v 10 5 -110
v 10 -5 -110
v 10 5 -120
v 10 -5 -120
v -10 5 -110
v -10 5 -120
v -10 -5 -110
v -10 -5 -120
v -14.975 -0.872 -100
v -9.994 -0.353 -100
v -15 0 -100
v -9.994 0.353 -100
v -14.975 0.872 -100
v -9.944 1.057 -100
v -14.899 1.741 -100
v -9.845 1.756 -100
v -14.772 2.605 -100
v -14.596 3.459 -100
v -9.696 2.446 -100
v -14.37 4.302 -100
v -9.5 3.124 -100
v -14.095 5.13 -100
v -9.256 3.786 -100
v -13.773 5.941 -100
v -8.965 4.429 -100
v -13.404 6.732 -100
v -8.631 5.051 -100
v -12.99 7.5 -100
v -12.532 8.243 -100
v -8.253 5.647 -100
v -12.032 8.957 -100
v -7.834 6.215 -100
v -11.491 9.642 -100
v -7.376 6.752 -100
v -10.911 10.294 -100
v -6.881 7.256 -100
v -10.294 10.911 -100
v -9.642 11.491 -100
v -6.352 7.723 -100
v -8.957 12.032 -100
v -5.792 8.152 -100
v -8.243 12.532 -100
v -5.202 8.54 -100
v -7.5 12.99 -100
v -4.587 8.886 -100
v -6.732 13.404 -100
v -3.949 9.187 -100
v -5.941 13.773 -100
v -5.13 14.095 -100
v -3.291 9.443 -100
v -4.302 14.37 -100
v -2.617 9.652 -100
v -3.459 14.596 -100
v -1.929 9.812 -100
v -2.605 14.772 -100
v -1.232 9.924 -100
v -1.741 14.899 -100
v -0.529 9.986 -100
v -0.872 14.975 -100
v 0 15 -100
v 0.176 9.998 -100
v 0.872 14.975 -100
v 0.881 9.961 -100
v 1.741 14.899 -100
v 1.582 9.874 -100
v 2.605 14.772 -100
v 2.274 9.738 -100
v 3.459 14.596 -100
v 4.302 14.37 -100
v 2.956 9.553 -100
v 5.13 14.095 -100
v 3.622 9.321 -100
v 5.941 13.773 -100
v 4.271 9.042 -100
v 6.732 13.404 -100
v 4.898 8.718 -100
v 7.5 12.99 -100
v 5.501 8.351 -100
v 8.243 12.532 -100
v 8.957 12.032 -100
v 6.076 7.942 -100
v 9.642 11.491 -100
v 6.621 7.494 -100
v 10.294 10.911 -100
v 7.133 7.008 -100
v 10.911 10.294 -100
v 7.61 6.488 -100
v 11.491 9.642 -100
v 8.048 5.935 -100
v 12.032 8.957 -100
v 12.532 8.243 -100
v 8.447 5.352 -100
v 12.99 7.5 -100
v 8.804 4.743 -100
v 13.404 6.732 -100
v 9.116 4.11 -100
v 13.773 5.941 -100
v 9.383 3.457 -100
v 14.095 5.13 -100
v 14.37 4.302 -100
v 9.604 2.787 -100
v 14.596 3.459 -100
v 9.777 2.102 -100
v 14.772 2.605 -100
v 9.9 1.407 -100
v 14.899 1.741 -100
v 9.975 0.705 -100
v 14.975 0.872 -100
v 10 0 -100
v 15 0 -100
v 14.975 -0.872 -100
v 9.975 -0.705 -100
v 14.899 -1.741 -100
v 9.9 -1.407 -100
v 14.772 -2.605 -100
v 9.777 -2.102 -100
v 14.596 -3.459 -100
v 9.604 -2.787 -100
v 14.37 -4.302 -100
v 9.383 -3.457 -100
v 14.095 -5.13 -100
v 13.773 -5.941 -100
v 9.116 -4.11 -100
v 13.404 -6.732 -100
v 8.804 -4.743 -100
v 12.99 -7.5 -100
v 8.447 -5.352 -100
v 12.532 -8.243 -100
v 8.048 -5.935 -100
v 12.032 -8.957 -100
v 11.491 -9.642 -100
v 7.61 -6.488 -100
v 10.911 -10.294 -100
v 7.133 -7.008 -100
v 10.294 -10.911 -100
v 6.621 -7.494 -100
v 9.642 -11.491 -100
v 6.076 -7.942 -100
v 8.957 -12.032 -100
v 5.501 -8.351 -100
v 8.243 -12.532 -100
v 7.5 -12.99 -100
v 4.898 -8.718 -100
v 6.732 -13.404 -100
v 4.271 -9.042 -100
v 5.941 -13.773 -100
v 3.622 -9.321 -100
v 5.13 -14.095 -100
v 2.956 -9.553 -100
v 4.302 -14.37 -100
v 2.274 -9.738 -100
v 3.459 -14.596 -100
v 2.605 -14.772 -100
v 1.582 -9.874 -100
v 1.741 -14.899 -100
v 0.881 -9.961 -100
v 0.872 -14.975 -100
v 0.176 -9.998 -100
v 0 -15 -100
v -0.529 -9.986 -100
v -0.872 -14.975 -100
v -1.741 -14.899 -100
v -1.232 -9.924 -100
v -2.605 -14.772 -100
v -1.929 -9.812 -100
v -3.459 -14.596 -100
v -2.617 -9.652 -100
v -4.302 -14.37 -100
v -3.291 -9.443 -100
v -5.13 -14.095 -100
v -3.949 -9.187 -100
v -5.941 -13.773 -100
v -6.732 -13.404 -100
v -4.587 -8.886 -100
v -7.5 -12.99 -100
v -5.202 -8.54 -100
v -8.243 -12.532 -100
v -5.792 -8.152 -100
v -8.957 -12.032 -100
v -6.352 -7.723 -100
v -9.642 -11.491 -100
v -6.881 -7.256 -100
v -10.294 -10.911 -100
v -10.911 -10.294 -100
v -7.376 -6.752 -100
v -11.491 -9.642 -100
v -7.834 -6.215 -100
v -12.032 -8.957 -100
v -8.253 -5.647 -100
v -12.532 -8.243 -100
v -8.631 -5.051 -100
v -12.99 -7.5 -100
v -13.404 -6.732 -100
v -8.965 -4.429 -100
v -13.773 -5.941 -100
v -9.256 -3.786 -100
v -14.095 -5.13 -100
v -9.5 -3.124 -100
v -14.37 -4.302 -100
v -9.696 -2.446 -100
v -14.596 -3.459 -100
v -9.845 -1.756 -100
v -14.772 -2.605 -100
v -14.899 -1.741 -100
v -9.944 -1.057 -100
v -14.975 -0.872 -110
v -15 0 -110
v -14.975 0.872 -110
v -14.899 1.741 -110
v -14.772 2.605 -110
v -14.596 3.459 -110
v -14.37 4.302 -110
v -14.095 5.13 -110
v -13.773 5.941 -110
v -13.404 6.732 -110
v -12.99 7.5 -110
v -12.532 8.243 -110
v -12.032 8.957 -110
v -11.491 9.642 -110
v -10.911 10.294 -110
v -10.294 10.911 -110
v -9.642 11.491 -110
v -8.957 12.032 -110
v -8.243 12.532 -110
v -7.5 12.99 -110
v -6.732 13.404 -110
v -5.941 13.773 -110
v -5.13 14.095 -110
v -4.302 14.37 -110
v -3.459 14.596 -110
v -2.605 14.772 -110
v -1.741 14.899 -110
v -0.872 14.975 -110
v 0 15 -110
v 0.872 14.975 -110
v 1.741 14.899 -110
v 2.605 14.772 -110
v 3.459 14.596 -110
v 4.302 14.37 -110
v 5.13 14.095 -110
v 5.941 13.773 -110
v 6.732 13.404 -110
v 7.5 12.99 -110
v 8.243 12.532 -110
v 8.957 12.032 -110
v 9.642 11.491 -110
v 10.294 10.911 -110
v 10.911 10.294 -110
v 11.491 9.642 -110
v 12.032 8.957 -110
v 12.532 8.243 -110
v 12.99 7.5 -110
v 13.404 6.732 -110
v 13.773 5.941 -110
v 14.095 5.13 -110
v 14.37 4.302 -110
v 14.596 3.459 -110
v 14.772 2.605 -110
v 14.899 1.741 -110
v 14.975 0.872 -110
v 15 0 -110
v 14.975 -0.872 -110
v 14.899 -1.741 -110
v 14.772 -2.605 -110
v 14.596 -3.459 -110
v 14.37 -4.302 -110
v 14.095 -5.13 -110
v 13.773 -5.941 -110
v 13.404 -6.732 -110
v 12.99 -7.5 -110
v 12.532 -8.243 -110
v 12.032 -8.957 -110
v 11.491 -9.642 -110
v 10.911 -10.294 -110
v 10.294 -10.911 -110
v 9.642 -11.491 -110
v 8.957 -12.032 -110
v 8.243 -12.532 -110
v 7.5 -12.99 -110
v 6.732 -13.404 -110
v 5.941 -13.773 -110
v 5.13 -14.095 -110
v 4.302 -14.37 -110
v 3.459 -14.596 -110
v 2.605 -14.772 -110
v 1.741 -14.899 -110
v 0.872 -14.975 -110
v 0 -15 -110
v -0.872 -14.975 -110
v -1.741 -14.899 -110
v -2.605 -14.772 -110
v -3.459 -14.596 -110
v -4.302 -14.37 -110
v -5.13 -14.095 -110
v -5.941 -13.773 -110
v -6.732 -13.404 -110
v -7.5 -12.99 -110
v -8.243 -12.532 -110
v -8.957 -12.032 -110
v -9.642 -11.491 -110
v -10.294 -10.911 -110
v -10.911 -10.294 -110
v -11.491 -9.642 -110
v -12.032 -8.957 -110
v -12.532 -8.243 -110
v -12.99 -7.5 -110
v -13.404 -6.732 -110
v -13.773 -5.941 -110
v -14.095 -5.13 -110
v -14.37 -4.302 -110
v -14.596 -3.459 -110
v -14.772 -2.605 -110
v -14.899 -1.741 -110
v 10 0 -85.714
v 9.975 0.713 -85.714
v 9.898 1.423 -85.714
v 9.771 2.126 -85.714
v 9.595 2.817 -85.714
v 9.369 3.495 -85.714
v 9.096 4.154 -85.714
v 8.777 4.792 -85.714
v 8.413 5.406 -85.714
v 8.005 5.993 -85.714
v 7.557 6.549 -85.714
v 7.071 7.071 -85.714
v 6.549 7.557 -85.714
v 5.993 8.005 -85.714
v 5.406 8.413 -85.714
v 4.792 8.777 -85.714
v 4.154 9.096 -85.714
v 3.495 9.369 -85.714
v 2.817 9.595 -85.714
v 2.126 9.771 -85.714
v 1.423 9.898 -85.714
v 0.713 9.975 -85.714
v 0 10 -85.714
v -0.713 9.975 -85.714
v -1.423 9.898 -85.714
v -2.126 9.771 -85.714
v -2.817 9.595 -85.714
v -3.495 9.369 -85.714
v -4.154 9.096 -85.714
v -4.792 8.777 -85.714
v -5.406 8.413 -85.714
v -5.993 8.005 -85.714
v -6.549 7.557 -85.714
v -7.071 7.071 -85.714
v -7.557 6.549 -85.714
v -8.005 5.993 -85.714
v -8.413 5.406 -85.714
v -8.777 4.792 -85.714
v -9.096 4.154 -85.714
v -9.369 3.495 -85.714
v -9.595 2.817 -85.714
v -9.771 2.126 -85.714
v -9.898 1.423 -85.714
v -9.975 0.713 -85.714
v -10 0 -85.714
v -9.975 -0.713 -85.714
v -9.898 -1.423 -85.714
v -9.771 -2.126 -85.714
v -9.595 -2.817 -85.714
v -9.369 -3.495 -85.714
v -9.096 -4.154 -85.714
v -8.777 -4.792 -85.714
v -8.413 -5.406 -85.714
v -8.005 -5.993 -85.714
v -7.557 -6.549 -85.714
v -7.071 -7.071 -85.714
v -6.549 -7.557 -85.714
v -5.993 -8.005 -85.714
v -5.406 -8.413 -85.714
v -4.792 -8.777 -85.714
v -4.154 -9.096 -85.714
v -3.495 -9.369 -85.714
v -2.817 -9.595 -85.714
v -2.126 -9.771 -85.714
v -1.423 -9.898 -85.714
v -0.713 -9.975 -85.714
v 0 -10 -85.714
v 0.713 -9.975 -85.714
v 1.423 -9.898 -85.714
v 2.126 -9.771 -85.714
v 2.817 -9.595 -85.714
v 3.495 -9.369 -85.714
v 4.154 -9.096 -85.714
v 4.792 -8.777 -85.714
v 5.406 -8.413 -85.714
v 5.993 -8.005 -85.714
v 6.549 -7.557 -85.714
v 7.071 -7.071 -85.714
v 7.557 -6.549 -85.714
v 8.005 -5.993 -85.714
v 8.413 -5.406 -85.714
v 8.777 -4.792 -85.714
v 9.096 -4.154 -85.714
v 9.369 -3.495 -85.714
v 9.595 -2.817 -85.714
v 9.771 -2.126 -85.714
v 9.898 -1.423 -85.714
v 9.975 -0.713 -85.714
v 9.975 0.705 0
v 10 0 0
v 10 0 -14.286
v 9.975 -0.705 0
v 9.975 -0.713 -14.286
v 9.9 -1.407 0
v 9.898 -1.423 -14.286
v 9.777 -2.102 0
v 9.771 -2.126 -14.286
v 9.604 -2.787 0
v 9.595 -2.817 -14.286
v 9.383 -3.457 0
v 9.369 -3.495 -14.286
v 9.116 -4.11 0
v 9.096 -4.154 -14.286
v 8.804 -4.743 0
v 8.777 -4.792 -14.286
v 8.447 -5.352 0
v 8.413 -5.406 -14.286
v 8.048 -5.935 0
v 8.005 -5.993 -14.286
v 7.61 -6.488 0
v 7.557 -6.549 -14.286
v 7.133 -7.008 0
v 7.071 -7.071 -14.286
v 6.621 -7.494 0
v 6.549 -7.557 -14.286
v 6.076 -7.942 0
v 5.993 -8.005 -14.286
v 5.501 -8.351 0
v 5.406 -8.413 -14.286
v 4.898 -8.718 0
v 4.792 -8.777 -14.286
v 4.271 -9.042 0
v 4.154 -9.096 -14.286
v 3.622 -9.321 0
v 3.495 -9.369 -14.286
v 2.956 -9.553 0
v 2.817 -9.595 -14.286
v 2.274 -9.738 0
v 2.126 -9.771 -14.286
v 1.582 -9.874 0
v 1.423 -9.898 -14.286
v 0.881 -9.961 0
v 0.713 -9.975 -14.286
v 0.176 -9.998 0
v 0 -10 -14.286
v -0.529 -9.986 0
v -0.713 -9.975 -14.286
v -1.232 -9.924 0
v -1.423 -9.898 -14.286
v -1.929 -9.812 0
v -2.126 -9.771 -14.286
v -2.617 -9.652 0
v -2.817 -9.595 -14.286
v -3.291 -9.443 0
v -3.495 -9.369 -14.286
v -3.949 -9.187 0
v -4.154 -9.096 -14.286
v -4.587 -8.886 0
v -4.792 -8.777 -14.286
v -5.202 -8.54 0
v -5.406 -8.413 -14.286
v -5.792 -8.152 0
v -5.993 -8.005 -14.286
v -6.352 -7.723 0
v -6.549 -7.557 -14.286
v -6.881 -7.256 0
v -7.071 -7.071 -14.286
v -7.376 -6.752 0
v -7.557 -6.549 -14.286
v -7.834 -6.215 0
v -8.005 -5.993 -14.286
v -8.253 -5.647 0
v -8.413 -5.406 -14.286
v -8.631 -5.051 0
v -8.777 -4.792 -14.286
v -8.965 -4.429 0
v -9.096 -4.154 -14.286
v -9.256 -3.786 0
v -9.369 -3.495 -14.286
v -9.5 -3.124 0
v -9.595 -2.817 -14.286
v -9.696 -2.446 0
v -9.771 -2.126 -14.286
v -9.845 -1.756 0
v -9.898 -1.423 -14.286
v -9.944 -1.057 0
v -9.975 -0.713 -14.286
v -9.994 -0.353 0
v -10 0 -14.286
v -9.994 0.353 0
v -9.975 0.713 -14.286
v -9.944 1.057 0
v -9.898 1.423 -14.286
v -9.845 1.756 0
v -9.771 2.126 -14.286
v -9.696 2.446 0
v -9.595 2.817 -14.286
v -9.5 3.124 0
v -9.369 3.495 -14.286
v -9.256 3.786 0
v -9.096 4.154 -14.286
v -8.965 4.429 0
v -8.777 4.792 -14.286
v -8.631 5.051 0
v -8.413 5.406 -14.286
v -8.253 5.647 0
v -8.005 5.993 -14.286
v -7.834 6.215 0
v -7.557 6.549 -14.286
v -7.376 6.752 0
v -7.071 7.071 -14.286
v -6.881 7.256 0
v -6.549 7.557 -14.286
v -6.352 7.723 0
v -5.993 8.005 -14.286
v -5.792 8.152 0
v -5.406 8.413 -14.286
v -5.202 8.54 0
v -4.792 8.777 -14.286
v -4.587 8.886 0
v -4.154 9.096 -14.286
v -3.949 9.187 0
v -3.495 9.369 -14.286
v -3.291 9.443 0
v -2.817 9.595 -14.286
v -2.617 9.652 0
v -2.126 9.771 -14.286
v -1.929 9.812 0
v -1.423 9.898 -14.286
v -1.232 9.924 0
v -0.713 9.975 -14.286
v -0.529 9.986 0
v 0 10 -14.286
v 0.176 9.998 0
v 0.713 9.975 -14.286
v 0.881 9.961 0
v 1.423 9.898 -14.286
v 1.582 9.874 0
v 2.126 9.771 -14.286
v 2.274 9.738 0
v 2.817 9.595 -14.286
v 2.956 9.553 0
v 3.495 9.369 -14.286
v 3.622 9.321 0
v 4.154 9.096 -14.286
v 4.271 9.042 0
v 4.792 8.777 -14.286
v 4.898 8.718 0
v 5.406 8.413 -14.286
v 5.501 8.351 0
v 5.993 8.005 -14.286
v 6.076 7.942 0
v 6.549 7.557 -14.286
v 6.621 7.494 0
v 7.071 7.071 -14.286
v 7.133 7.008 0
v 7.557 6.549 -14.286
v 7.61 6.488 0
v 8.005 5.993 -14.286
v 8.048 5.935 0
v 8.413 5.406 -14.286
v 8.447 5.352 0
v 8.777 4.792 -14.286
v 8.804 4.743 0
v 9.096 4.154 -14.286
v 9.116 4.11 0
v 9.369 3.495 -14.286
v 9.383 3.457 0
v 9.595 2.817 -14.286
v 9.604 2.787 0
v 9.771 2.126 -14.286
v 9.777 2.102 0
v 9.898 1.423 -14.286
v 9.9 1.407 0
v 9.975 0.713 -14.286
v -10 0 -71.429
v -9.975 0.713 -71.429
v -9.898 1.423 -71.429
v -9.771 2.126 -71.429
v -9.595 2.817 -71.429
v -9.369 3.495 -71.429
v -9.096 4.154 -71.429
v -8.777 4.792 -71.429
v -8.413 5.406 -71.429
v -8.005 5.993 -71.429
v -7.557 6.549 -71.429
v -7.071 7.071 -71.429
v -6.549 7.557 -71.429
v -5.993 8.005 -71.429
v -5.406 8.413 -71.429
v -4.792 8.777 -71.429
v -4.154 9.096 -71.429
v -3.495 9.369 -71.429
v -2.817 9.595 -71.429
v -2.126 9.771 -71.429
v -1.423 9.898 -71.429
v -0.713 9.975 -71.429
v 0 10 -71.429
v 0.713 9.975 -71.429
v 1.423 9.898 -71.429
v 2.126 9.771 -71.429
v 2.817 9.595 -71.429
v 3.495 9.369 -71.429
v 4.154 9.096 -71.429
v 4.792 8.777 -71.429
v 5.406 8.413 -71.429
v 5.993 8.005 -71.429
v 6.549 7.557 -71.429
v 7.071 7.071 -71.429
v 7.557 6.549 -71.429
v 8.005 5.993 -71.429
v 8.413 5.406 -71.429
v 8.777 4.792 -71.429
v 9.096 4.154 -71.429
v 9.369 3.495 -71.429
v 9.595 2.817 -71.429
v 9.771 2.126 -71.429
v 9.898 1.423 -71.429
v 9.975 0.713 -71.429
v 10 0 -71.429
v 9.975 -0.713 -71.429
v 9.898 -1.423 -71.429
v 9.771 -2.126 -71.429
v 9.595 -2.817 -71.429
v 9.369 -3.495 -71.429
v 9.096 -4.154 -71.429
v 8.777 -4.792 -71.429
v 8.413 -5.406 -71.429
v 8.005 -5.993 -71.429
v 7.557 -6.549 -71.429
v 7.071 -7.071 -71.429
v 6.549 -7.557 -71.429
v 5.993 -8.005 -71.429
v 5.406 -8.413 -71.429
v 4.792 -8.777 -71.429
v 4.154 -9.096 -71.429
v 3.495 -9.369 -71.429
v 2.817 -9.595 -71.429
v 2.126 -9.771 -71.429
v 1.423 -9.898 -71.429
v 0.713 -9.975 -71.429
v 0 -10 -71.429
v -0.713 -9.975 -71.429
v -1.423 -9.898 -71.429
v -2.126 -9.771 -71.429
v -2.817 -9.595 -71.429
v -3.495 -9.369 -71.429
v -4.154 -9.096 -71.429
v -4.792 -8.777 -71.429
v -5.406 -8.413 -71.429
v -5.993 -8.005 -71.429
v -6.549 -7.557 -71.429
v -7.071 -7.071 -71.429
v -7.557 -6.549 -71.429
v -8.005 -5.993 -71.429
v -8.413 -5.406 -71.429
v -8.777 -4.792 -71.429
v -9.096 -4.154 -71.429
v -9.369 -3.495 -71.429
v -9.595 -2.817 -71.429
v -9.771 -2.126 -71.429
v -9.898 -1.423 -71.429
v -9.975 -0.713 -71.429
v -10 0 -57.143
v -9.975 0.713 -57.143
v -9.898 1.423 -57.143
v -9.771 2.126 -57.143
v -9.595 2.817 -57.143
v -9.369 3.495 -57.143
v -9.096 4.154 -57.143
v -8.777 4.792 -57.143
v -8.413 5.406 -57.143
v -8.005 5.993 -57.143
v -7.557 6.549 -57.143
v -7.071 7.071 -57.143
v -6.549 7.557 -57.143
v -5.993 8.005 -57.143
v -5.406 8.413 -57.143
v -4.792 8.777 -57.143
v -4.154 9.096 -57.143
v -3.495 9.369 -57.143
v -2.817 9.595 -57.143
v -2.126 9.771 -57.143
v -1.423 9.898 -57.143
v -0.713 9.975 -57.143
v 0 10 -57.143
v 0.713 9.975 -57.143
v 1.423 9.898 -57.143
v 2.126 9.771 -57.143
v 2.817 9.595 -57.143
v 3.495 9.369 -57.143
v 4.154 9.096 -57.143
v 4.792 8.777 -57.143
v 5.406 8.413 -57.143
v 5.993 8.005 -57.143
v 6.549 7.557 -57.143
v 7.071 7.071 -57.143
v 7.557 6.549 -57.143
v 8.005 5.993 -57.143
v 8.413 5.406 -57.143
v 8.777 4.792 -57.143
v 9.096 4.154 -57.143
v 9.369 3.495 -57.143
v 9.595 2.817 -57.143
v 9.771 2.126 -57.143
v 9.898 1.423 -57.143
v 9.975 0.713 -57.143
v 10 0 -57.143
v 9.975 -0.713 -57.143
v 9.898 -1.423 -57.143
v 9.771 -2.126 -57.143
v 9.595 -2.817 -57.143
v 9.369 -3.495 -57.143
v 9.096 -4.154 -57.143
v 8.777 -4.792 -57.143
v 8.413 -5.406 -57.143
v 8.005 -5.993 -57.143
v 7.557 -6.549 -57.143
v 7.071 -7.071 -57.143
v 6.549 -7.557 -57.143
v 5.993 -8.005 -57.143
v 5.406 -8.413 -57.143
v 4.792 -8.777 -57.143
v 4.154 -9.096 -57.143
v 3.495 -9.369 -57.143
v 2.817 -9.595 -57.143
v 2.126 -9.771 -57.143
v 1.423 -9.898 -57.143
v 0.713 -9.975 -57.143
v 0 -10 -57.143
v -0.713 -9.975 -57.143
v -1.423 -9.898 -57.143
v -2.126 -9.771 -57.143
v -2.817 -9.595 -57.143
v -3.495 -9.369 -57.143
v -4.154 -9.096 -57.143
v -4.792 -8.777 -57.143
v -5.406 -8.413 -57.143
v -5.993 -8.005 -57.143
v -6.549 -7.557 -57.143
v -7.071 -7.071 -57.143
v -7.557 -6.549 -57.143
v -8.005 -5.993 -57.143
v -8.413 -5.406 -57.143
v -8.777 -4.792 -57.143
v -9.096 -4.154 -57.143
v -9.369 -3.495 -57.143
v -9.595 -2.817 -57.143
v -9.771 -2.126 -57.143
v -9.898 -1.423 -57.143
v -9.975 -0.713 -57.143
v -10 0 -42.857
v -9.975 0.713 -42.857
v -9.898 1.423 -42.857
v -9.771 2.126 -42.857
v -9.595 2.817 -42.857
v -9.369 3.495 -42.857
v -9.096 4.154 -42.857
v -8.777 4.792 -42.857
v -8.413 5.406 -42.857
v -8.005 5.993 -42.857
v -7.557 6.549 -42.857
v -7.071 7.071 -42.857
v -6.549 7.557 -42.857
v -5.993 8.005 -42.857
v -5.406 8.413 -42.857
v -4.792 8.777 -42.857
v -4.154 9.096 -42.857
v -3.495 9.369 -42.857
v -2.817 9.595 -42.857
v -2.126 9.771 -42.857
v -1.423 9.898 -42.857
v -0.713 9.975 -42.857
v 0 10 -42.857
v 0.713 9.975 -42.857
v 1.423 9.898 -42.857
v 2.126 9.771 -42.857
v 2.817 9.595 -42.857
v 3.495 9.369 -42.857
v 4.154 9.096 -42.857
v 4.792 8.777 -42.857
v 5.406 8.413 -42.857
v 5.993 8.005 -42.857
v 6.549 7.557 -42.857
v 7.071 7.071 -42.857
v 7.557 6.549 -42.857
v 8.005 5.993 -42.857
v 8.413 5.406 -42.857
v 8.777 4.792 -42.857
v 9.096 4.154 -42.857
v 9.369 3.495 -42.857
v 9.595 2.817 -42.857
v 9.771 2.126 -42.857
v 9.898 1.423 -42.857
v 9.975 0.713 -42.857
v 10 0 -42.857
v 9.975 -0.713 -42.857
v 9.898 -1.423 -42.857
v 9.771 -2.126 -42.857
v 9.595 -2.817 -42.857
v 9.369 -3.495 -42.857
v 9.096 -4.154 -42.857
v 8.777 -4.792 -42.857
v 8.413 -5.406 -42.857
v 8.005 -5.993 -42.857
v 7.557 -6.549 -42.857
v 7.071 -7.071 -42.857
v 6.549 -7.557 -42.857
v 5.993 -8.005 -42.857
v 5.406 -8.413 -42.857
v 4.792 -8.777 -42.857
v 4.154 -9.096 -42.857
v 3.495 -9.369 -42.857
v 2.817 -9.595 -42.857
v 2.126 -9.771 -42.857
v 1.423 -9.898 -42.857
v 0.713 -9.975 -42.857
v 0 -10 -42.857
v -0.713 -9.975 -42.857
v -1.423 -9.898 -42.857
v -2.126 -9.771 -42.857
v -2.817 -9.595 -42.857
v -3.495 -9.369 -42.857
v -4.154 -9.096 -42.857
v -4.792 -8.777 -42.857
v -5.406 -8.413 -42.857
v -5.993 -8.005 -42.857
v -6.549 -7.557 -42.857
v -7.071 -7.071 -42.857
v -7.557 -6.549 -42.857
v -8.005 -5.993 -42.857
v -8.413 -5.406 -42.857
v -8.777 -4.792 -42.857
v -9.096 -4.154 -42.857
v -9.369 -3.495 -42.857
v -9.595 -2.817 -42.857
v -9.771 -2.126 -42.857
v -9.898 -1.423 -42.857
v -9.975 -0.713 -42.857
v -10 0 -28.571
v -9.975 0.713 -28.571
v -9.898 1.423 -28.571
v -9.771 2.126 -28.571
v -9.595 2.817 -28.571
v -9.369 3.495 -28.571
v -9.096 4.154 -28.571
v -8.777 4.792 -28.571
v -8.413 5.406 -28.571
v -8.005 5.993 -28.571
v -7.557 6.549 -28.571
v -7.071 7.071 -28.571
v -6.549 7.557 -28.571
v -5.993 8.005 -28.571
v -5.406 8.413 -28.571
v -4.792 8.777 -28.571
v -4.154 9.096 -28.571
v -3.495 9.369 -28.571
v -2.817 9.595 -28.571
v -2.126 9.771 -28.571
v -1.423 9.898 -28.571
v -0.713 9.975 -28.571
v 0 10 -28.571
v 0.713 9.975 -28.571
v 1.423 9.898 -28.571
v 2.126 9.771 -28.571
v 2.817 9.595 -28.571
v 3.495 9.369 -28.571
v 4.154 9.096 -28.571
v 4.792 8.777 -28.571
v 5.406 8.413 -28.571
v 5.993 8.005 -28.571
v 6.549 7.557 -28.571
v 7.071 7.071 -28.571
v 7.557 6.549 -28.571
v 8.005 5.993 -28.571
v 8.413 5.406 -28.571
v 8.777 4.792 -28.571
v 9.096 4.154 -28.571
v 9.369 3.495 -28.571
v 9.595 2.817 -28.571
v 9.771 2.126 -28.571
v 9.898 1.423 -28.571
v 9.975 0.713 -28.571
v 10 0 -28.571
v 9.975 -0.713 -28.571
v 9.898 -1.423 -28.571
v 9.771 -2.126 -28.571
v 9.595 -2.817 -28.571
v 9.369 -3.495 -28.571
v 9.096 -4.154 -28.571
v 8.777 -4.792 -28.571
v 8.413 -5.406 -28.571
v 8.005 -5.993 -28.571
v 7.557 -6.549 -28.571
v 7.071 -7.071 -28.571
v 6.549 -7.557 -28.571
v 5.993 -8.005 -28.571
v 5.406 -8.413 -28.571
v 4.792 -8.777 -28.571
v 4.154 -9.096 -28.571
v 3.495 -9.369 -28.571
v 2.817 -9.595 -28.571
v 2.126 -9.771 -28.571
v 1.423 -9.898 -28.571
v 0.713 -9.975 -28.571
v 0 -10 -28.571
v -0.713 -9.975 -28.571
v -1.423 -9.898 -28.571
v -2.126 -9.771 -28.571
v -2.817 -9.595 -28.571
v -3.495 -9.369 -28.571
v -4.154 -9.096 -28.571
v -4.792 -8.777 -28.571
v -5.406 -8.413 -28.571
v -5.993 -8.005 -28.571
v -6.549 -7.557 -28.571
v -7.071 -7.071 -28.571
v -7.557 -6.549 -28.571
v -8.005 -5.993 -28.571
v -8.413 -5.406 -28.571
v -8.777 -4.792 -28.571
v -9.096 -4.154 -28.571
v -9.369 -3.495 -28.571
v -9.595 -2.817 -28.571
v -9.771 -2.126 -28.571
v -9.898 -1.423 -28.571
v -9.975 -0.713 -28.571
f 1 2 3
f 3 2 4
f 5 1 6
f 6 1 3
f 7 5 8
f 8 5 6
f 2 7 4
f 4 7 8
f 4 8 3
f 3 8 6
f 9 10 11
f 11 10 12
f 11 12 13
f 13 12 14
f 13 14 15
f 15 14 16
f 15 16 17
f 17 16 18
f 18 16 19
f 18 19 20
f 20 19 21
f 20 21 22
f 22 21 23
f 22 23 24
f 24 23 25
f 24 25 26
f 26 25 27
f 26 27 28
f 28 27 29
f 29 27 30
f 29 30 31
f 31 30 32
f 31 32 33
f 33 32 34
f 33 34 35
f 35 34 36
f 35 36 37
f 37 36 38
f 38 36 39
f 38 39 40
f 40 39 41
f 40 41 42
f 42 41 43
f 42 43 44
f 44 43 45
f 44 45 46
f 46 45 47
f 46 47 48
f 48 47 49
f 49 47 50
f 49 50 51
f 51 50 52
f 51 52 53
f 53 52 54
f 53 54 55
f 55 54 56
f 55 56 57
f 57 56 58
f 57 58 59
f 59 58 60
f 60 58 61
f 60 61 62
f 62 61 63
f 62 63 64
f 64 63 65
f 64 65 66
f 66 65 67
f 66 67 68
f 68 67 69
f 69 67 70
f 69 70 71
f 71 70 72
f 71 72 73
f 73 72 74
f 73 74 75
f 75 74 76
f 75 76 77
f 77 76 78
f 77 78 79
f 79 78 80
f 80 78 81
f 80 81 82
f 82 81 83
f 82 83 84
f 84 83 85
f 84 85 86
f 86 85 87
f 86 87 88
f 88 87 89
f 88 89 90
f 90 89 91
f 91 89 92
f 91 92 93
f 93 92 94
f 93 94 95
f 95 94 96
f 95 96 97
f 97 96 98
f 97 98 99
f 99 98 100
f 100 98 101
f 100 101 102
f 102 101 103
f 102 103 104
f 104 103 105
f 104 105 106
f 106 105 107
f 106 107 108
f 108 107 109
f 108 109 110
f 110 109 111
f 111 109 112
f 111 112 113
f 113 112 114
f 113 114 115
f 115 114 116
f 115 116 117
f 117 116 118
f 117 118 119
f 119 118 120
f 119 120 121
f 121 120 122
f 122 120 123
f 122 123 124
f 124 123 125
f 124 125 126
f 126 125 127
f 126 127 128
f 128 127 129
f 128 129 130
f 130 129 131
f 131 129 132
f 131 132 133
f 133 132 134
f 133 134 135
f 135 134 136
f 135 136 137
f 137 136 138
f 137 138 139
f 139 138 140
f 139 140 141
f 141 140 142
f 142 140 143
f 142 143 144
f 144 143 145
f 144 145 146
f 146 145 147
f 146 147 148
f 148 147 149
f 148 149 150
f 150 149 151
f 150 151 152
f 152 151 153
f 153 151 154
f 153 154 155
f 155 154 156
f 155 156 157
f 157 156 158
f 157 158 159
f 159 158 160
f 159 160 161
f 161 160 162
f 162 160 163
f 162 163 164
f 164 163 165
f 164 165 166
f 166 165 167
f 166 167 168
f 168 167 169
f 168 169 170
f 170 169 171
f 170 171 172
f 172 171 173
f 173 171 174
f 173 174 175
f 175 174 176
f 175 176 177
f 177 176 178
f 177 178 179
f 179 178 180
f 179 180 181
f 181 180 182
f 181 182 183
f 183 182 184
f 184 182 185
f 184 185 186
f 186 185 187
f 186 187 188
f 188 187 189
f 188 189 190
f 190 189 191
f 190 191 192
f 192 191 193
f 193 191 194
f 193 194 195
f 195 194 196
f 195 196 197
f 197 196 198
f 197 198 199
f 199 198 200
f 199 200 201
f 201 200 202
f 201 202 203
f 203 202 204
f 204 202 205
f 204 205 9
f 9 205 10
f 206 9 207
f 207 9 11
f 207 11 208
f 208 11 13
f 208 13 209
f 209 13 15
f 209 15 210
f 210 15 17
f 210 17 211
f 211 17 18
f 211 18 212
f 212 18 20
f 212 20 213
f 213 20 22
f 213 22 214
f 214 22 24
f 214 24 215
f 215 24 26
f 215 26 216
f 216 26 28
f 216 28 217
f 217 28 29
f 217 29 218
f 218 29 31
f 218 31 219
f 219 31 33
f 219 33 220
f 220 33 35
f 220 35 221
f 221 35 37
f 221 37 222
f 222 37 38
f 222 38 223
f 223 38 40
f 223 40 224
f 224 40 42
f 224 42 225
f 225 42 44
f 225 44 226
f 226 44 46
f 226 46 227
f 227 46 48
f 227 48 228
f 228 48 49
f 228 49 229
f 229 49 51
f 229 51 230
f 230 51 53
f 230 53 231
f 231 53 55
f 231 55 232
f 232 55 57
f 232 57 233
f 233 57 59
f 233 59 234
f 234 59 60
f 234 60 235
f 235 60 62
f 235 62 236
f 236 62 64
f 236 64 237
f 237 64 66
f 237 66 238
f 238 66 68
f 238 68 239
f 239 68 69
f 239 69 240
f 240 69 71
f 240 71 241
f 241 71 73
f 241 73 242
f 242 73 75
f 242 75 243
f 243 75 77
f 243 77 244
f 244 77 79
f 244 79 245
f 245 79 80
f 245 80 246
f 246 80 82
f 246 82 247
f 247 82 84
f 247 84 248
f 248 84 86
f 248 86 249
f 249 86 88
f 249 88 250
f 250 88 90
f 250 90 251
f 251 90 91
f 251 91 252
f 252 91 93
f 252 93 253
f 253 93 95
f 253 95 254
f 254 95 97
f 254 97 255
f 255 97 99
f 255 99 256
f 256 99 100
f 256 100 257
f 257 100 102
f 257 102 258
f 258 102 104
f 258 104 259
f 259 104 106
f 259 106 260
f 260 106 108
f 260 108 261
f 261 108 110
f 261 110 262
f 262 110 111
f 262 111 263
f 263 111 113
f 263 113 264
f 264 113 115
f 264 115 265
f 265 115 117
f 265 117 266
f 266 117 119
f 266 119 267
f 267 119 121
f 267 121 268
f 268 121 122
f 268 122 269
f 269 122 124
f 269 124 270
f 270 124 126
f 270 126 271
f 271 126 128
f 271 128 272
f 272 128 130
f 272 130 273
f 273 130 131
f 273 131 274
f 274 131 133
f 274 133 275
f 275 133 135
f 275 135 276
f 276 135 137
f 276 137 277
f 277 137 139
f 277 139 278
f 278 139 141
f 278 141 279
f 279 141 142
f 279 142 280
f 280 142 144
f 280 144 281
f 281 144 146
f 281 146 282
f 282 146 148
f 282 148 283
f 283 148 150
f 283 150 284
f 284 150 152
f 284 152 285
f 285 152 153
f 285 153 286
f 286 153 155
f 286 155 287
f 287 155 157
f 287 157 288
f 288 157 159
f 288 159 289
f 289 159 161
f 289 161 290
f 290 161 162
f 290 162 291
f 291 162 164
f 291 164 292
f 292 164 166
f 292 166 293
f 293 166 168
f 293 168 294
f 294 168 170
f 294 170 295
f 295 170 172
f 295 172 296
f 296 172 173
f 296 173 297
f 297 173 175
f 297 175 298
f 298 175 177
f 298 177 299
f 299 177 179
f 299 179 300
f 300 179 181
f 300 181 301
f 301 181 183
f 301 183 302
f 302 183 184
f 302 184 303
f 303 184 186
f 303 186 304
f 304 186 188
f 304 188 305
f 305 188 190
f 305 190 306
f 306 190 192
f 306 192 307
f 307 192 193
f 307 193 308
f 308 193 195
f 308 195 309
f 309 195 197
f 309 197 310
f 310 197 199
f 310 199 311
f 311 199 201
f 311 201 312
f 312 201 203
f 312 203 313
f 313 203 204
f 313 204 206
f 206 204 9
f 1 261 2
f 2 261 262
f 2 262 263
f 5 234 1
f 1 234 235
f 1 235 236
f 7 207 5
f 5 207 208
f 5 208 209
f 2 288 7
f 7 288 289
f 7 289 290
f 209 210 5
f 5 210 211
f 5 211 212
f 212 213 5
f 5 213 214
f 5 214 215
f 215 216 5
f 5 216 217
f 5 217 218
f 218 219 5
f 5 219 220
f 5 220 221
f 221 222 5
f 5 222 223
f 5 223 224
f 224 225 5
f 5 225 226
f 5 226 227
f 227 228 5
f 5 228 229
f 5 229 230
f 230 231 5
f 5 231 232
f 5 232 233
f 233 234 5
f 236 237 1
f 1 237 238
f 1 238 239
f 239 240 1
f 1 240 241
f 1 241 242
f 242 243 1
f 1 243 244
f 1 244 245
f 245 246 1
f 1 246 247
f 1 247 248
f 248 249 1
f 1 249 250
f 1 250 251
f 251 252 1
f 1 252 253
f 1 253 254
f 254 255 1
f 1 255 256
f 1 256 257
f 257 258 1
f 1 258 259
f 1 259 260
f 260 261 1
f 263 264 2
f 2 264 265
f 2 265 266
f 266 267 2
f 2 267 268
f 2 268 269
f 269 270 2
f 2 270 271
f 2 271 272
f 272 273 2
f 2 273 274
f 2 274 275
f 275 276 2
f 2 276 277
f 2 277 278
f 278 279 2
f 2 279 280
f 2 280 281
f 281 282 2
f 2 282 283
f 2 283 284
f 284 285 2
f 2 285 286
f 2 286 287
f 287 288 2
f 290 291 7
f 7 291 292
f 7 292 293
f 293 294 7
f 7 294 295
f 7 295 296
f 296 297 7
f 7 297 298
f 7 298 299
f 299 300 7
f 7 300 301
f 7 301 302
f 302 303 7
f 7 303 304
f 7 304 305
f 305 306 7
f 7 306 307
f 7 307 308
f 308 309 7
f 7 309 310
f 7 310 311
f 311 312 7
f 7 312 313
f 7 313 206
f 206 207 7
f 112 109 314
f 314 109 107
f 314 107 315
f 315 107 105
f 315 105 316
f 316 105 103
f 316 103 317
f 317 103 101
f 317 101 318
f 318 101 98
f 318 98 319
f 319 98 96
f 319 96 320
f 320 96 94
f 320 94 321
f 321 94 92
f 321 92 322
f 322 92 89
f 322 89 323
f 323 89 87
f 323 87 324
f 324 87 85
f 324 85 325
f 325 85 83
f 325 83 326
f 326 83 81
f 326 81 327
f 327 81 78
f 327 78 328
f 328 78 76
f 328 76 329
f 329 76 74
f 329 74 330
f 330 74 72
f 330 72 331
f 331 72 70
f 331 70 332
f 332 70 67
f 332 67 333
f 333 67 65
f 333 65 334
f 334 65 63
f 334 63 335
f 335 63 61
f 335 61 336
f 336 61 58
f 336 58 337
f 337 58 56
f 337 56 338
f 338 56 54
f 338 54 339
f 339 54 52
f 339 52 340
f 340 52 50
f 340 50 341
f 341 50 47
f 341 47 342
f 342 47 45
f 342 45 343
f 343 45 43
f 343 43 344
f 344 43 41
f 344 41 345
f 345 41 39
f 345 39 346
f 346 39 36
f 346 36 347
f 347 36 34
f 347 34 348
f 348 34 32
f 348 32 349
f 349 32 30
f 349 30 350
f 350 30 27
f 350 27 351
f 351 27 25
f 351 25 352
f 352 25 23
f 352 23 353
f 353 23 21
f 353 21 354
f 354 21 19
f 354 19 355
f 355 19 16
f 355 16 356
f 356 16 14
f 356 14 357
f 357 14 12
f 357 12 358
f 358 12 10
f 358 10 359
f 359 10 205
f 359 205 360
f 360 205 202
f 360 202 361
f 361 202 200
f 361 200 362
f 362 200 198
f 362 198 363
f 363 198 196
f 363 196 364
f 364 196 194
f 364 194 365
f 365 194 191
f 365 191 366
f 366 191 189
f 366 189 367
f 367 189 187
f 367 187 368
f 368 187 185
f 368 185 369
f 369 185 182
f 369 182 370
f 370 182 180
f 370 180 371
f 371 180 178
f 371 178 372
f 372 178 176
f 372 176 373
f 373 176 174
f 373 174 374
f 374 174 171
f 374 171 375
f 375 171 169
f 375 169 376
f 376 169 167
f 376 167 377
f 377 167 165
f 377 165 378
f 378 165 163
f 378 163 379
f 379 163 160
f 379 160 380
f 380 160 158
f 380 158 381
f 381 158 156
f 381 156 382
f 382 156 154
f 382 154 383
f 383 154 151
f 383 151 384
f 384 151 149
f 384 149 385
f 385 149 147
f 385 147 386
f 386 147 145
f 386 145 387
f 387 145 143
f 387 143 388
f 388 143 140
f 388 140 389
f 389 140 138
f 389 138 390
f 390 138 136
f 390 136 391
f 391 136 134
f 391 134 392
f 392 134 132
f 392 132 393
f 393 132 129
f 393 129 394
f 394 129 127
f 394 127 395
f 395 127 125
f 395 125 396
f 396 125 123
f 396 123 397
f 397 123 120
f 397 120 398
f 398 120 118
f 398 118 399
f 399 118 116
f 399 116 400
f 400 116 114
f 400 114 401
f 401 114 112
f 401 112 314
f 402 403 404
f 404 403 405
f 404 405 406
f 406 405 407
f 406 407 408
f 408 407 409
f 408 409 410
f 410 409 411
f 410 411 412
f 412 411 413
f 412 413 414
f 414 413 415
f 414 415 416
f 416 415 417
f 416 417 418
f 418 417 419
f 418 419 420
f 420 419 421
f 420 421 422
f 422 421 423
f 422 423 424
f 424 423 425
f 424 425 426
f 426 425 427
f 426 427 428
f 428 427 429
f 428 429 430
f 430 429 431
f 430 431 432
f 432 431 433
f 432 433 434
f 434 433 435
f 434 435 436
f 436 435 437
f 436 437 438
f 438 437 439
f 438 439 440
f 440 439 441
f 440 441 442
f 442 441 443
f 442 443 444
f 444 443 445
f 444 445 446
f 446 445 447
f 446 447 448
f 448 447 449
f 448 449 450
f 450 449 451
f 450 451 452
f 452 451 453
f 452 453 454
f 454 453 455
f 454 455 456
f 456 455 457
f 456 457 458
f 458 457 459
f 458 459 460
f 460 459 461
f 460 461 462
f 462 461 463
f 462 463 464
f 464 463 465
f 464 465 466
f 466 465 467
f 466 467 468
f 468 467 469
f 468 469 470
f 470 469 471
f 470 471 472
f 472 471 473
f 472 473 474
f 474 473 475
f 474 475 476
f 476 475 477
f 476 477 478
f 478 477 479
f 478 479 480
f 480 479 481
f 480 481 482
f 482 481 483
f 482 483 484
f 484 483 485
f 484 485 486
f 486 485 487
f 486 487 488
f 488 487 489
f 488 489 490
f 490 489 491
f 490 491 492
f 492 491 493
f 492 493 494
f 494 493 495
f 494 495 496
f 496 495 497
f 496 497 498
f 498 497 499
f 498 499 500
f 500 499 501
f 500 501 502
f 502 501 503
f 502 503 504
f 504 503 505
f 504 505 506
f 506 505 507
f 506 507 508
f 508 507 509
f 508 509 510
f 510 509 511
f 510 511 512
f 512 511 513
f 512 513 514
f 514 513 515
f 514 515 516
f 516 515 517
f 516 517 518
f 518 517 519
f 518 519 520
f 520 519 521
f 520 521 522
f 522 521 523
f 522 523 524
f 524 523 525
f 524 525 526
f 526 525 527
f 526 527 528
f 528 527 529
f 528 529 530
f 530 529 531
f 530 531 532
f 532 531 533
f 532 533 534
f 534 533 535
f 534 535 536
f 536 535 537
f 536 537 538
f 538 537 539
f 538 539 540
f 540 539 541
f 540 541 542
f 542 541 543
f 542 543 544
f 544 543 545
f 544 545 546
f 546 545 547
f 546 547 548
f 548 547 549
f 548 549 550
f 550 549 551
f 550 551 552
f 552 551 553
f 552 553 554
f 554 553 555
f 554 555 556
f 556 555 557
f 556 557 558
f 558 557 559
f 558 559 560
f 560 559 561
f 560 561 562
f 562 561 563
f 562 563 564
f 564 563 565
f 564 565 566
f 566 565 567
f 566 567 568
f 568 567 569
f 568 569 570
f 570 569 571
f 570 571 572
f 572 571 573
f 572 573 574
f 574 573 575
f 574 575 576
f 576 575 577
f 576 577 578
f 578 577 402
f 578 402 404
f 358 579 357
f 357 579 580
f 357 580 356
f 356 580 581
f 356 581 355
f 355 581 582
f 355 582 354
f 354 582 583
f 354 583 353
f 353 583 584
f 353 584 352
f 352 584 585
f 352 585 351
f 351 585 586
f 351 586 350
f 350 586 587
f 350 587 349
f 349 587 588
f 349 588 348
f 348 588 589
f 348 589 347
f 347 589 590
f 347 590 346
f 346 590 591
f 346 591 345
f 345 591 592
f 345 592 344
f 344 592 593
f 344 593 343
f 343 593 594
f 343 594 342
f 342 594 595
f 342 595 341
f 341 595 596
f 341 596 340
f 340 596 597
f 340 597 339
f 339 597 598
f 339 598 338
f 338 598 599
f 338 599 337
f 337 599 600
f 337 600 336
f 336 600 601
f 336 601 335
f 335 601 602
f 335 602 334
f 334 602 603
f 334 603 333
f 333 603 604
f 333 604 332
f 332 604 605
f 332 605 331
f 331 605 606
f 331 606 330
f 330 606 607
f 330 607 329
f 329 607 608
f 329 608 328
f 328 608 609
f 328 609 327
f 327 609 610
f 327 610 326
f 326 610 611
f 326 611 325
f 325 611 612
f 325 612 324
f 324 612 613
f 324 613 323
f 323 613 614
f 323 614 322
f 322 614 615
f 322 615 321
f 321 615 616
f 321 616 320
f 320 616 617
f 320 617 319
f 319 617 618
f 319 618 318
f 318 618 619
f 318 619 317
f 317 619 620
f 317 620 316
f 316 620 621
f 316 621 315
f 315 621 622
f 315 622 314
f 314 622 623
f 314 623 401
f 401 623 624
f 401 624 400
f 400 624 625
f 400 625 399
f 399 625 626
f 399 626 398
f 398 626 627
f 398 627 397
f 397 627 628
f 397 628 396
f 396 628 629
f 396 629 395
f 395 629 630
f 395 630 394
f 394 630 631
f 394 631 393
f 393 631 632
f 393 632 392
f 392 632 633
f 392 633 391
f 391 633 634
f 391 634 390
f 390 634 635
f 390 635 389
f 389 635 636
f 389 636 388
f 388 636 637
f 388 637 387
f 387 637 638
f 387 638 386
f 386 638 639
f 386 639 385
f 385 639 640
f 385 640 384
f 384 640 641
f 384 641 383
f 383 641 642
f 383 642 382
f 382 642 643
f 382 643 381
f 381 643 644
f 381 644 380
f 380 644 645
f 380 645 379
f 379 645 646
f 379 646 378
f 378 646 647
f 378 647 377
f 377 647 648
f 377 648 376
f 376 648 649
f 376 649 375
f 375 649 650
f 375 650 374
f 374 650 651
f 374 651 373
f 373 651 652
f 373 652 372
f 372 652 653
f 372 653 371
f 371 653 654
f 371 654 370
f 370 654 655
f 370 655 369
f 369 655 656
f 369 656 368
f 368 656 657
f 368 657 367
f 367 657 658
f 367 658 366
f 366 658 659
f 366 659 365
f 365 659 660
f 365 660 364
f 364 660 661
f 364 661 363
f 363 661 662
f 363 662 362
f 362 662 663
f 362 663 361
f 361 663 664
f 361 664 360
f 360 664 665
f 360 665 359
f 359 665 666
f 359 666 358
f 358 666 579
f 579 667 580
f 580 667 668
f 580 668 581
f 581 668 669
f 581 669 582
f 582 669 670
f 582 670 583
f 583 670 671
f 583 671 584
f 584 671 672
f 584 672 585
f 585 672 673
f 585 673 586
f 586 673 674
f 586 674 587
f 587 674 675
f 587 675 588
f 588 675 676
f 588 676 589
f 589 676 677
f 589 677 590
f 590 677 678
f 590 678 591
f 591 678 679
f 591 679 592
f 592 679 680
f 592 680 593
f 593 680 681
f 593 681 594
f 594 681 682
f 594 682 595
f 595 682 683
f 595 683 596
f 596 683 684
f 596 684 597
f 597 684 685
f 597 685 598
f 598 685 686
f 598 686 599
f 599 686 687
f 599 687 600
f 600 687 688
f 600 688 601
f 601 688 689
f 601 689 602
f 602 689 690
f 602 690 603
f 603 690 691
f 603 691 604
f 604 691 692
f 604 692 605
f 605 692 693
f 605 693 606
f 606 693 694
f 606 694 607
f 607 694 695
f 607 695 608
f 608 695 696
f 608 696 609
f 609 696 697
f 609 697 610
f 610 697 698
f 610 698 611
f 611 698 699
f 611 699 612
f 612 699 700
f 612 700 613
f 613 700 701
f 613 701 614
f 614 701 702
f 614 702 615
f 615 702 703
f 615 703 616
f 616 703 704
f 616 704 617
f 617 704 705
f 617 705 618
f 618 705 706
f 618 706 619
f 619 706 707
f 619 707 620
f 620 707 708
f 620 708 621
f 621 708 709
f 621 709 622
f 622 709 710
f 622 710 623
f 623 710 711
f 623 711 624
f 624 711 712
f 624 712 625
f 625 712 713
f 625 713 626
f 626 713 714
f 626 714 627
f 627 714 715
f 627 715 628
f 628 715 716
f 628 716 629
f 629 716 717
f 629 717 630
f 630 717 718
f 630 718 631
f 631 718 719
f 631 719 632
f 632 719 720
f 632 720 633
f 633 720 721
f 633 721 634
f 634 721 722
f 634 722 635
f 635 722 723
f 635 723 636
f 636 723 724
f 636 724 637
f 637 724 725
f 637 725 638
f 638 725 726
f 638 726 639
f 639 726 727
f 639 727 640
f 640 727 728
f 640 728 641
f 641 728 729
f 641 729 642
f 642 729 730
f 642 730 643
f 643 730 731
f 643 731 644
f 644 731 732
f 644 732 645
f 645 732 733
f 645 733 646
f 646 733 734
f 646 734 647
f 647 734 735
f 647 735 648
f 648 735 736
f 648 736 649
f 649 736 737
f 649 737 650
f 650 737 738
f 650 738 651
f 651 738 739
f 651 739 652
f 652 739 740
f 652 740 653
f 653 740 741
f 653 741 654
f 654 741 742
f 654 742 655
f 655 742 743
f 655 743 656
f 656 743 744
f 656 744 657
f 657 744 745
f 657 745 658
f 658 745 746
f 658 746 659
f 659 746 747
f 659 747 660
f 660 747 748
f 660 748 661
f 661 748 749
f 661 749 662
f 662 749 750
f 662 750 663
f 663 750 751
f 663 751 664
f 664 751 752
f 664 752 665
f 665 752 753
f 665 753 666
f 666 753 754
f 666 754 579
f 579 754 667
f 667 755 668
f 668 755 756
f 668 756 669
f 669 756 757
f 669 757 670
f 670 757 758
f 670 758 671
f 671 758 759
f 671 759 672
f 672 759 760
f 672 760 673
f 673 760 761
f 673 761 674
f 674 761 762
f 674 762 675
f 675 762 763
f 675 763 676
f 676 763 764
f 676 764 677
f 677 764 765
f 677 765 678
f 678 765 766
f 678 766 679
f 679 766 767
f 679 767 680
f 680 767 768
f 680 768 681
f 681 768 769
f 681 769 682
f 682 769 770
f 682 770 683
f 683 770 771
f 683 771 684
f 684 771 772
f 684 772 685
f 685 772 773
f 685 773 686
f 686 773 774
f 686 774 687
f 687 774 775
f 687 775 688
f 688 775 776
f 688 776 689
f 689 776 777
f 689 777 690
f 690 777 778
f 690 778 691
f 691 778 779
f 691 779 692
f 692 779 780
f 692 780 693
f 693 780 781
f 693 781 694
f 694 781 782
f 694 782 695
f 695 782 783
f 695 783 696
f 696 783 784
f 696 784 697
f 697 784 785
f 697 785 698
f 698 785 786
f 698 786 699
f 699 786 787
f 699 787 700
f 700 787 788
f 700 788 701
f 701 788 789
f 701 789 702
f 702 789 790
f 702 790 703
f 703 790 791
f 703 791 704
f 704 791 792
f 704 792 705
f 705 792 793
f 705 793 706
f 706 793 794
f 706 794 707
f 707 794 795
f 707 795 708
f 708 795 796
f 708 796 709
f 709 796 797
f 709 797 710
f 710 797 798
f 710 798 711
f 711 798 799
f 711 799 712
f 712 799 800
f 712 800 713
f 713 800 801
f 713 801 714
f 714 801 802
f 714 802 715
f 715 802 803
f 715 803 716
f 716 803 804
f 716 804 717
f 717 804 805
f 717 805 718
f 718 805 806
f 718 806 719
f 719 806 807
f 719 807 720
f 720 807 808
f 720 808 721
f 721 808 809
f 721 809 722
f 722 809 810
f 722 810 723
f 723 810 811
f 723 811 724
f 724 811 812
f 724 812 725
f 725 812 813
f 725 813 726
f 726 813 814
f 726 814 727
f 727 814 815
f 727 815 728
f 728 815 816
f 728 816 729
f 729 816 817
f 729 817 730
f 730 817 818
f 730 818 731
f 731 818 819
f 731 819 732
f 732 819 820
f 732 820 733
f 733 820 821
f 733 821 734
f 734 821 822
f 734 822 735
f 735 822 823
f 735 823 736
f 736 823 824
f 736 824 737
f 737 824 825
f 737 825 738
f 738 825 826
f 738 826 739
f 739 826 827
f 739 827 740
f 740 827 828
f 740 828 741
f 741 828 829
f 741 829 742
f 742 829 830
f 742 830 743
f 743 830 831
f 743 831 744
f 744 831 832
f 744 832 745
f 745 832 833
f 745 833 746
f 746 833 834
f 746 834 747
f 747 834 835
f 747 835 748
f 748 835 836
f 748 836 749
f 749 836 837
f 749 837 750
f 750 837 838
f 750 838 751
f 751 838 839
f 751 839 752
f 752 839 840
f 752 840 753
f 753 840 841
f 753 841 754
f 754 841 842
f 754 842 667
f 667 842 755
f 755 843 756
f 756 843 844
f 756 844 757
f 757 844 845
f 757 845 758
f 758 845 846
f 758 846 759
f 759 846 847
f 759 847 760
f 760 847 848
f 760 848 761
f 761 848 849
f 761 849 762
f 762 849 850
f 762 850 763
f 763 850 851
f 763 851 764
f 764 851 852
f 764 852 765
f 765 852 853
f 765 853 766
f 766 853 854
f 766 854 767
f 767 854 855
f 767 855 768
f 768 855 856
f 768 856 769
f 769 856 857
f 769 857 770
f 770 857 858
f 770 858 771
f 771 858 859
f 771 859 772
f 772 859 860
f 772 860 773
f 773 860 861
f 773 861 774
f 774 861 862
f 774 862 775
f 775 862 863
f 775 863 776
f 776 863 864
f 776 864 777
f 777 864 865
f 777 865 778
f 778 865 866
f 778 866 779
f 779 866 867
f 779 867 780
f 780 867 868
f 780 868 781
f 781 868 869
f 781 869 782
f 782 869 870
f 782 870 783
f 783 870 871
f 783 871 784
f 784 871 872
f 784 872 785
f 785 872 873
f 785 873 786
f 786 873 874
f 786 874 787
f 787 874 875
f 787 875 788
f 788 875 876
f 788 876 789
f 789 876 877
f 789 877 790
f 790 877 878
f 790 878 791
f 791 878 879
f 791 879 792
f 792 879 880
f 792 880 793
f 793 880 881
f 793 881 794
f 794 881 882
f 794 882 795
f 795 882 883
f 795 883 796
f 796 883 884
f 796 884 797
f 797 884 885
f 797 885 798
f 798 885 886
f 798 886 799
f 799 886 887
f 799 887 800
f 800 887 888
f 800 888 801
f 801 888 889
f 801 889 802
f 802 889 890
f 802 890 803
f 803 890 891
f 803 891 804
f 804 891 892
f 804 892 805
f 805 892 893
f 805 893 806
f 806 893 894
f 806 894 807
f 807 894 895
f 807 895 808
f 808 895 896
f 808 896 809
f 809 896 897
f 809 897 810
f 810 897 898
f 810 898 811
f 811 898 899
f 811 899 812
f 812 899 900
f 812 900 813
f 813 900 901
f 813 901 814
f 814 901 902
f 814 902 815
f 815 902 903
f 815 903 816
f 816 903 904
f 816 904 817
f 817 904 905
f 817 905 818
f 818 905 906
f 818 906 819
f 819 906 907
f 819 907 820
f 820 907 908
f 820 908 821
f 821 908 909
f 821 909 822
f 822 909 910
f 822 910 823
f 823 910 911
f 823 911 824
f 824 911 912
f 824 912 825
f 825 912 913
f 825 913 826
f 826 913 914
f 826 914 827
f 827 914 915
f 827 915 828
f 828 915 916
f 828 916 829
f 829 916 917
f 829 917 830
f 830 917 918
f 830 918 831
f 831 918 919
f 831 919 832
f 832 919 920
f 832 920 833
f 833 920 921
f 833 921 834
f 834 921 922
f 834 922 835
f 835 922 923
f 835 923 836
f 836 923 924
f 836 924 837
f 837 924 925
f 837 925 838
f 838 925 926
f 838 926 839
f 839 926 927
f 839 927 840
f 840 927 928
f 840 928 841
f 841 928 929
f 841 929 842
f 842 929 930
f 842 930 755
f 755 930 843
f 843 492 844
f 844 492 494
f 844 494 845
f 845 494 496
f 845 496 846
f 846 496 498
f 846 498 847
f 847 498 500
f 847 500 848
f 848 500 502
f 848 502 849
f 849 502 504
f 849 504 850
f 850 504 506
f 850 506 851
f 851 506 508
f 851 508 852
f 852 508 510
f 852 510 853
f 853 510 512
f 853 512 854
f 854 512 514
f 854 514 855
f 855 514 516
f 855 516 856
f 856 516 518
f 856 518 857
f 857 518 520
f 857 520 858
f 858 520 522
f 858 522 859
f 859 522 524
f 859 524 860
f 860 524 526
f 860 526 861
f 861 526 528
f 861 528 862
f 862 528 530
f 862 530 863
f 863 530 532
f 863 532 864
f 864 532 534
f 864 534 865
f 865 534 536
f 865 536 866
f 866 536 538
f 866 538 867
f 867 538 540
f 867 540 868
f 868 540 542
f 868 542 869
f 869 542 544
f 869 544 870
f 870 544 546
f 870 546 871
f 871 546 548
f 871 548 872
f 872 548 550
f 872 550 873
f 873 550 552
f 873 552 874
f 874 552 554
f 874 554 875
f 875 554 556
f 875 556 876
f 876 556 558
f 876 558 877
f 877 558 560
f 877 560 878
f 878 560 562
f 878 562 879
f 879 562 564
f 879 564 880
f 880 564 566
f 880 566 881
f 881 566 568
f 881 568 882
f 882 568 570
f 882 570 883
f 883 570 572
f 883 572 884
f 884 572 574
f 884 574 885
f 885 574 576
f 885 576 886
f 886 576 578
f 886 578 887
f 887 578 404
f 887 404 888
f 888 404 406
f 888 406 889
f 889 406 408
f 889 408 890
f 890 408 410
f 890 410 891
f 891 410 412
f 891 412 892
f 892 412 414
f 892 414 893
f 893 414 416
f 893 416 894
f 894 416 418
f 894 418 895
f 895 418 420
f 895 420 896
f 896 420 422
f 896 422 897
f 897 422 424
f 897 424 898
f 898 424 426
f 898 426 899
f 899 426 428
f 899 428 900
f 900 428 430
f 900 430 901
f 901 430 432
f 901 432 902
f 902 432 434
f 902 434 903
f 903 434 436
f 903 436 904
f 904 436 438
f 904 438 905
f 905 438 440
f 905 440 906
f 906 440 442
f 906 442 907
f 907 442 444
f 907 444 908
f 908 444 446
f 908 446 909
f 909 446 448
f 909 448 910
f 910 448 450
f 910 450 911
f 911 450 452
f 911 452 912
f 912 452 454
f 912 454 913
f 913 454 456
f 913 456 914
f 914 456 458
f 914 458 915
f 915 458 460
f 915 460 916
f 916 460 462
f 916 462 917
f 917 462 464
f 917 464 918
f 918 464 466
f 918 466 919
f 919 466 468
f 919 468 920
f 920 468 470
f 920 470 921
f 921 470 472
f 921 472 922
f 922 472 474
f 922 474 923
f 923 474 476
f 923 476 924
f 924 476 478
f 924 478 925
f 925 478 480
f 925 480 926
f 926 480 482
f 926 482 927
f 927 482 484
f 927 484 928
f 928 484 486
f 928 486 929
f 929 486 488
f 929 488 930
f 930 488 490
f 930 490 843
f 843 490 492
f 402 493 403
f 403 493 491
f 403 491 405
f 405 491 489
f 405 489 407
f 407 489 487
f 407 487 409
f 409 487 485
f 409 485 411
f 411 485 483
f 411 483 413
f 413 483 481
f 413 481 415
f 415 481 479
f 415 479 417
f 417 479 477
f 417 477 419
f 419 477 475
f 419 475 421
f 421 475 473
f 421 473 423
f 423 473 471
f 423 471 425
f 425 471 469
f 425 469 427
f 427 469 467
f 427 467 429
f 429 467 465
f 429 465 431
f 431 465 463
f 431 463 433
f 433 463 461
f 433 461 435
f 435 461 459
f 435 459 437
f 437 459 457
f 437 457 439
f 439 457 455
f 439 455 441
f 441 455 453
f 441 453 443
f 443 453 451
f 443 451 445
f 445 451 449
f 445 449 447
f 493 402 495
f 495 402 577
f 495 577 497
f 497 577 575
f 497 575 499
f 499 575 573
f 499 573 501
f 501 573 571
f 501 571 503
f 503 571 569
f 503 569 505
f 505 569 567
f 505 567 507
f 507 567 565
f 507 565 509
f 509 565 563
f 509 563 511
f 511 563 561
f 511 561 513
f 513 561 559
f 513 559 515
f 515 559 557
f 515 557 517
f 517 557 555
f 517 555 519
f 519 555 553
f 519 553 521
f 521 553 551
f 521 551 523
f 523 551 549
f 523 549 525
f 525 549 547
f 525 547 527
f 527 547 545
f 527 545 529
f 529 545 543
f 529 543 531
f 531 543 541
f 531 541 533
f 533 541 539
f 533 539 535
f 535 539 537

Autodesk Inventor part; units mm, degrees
ref_plane "YZ Plane" through (0, 0, 0) normal (1, 0, 0) x (0, 1, 0)
ref_plane "XZ Plane" through (0, 0, 0) normal (0, 1, 0) x (-1, 0, 0)
ref_plane "XY Plane" through (0, 0, 0) normal (0, 0, 1) x (1, 0, 0)
sketch "Skizze1" plane through (0, 0, 0) normal (0, 0, 1) x (1, 0, 0)
  circle A0 centre (0, 0) radius 10
  dimension "d0" = 20
extrude "Extrusion1" add sketch "Skizze1" against normal blind 100
sketch "Skizze2" plane through (0, 0, -100) normal (0, 0, -1) x (-1, 0, 0)
  circle A0 centre (0, 0) radius 10 projected
  circle A1 centre (0, 0) radius 15
  dimension "d3" = 30
extrude "Extrusion2" add sketch "Skizze2" along normal blind 10 contours A0 | A1
sketch "Skizze3" plane through (0, 0, -110) normal (0, 0, -1) x (-1, 0, 0)
  line L0 (10, -5) -> (-10, -5)
  line L1 (-10, -5) -> (-10, 5)
  line L2 (-10, 5) -> (10, 5)
  line L3 (10, 5) -> (10, -5)
  line L4 (10, -5) -> (-10, 5) construction
  line L5 (-10, -5) -> (10, 5) construction
  point P0 (0, 0)
  dimension "d6" = 20
  dimension "d7" = 10
extrude "Extrusion3" add sketch "Skizze3" along normal blind 10
properties part number "Hubstange"
